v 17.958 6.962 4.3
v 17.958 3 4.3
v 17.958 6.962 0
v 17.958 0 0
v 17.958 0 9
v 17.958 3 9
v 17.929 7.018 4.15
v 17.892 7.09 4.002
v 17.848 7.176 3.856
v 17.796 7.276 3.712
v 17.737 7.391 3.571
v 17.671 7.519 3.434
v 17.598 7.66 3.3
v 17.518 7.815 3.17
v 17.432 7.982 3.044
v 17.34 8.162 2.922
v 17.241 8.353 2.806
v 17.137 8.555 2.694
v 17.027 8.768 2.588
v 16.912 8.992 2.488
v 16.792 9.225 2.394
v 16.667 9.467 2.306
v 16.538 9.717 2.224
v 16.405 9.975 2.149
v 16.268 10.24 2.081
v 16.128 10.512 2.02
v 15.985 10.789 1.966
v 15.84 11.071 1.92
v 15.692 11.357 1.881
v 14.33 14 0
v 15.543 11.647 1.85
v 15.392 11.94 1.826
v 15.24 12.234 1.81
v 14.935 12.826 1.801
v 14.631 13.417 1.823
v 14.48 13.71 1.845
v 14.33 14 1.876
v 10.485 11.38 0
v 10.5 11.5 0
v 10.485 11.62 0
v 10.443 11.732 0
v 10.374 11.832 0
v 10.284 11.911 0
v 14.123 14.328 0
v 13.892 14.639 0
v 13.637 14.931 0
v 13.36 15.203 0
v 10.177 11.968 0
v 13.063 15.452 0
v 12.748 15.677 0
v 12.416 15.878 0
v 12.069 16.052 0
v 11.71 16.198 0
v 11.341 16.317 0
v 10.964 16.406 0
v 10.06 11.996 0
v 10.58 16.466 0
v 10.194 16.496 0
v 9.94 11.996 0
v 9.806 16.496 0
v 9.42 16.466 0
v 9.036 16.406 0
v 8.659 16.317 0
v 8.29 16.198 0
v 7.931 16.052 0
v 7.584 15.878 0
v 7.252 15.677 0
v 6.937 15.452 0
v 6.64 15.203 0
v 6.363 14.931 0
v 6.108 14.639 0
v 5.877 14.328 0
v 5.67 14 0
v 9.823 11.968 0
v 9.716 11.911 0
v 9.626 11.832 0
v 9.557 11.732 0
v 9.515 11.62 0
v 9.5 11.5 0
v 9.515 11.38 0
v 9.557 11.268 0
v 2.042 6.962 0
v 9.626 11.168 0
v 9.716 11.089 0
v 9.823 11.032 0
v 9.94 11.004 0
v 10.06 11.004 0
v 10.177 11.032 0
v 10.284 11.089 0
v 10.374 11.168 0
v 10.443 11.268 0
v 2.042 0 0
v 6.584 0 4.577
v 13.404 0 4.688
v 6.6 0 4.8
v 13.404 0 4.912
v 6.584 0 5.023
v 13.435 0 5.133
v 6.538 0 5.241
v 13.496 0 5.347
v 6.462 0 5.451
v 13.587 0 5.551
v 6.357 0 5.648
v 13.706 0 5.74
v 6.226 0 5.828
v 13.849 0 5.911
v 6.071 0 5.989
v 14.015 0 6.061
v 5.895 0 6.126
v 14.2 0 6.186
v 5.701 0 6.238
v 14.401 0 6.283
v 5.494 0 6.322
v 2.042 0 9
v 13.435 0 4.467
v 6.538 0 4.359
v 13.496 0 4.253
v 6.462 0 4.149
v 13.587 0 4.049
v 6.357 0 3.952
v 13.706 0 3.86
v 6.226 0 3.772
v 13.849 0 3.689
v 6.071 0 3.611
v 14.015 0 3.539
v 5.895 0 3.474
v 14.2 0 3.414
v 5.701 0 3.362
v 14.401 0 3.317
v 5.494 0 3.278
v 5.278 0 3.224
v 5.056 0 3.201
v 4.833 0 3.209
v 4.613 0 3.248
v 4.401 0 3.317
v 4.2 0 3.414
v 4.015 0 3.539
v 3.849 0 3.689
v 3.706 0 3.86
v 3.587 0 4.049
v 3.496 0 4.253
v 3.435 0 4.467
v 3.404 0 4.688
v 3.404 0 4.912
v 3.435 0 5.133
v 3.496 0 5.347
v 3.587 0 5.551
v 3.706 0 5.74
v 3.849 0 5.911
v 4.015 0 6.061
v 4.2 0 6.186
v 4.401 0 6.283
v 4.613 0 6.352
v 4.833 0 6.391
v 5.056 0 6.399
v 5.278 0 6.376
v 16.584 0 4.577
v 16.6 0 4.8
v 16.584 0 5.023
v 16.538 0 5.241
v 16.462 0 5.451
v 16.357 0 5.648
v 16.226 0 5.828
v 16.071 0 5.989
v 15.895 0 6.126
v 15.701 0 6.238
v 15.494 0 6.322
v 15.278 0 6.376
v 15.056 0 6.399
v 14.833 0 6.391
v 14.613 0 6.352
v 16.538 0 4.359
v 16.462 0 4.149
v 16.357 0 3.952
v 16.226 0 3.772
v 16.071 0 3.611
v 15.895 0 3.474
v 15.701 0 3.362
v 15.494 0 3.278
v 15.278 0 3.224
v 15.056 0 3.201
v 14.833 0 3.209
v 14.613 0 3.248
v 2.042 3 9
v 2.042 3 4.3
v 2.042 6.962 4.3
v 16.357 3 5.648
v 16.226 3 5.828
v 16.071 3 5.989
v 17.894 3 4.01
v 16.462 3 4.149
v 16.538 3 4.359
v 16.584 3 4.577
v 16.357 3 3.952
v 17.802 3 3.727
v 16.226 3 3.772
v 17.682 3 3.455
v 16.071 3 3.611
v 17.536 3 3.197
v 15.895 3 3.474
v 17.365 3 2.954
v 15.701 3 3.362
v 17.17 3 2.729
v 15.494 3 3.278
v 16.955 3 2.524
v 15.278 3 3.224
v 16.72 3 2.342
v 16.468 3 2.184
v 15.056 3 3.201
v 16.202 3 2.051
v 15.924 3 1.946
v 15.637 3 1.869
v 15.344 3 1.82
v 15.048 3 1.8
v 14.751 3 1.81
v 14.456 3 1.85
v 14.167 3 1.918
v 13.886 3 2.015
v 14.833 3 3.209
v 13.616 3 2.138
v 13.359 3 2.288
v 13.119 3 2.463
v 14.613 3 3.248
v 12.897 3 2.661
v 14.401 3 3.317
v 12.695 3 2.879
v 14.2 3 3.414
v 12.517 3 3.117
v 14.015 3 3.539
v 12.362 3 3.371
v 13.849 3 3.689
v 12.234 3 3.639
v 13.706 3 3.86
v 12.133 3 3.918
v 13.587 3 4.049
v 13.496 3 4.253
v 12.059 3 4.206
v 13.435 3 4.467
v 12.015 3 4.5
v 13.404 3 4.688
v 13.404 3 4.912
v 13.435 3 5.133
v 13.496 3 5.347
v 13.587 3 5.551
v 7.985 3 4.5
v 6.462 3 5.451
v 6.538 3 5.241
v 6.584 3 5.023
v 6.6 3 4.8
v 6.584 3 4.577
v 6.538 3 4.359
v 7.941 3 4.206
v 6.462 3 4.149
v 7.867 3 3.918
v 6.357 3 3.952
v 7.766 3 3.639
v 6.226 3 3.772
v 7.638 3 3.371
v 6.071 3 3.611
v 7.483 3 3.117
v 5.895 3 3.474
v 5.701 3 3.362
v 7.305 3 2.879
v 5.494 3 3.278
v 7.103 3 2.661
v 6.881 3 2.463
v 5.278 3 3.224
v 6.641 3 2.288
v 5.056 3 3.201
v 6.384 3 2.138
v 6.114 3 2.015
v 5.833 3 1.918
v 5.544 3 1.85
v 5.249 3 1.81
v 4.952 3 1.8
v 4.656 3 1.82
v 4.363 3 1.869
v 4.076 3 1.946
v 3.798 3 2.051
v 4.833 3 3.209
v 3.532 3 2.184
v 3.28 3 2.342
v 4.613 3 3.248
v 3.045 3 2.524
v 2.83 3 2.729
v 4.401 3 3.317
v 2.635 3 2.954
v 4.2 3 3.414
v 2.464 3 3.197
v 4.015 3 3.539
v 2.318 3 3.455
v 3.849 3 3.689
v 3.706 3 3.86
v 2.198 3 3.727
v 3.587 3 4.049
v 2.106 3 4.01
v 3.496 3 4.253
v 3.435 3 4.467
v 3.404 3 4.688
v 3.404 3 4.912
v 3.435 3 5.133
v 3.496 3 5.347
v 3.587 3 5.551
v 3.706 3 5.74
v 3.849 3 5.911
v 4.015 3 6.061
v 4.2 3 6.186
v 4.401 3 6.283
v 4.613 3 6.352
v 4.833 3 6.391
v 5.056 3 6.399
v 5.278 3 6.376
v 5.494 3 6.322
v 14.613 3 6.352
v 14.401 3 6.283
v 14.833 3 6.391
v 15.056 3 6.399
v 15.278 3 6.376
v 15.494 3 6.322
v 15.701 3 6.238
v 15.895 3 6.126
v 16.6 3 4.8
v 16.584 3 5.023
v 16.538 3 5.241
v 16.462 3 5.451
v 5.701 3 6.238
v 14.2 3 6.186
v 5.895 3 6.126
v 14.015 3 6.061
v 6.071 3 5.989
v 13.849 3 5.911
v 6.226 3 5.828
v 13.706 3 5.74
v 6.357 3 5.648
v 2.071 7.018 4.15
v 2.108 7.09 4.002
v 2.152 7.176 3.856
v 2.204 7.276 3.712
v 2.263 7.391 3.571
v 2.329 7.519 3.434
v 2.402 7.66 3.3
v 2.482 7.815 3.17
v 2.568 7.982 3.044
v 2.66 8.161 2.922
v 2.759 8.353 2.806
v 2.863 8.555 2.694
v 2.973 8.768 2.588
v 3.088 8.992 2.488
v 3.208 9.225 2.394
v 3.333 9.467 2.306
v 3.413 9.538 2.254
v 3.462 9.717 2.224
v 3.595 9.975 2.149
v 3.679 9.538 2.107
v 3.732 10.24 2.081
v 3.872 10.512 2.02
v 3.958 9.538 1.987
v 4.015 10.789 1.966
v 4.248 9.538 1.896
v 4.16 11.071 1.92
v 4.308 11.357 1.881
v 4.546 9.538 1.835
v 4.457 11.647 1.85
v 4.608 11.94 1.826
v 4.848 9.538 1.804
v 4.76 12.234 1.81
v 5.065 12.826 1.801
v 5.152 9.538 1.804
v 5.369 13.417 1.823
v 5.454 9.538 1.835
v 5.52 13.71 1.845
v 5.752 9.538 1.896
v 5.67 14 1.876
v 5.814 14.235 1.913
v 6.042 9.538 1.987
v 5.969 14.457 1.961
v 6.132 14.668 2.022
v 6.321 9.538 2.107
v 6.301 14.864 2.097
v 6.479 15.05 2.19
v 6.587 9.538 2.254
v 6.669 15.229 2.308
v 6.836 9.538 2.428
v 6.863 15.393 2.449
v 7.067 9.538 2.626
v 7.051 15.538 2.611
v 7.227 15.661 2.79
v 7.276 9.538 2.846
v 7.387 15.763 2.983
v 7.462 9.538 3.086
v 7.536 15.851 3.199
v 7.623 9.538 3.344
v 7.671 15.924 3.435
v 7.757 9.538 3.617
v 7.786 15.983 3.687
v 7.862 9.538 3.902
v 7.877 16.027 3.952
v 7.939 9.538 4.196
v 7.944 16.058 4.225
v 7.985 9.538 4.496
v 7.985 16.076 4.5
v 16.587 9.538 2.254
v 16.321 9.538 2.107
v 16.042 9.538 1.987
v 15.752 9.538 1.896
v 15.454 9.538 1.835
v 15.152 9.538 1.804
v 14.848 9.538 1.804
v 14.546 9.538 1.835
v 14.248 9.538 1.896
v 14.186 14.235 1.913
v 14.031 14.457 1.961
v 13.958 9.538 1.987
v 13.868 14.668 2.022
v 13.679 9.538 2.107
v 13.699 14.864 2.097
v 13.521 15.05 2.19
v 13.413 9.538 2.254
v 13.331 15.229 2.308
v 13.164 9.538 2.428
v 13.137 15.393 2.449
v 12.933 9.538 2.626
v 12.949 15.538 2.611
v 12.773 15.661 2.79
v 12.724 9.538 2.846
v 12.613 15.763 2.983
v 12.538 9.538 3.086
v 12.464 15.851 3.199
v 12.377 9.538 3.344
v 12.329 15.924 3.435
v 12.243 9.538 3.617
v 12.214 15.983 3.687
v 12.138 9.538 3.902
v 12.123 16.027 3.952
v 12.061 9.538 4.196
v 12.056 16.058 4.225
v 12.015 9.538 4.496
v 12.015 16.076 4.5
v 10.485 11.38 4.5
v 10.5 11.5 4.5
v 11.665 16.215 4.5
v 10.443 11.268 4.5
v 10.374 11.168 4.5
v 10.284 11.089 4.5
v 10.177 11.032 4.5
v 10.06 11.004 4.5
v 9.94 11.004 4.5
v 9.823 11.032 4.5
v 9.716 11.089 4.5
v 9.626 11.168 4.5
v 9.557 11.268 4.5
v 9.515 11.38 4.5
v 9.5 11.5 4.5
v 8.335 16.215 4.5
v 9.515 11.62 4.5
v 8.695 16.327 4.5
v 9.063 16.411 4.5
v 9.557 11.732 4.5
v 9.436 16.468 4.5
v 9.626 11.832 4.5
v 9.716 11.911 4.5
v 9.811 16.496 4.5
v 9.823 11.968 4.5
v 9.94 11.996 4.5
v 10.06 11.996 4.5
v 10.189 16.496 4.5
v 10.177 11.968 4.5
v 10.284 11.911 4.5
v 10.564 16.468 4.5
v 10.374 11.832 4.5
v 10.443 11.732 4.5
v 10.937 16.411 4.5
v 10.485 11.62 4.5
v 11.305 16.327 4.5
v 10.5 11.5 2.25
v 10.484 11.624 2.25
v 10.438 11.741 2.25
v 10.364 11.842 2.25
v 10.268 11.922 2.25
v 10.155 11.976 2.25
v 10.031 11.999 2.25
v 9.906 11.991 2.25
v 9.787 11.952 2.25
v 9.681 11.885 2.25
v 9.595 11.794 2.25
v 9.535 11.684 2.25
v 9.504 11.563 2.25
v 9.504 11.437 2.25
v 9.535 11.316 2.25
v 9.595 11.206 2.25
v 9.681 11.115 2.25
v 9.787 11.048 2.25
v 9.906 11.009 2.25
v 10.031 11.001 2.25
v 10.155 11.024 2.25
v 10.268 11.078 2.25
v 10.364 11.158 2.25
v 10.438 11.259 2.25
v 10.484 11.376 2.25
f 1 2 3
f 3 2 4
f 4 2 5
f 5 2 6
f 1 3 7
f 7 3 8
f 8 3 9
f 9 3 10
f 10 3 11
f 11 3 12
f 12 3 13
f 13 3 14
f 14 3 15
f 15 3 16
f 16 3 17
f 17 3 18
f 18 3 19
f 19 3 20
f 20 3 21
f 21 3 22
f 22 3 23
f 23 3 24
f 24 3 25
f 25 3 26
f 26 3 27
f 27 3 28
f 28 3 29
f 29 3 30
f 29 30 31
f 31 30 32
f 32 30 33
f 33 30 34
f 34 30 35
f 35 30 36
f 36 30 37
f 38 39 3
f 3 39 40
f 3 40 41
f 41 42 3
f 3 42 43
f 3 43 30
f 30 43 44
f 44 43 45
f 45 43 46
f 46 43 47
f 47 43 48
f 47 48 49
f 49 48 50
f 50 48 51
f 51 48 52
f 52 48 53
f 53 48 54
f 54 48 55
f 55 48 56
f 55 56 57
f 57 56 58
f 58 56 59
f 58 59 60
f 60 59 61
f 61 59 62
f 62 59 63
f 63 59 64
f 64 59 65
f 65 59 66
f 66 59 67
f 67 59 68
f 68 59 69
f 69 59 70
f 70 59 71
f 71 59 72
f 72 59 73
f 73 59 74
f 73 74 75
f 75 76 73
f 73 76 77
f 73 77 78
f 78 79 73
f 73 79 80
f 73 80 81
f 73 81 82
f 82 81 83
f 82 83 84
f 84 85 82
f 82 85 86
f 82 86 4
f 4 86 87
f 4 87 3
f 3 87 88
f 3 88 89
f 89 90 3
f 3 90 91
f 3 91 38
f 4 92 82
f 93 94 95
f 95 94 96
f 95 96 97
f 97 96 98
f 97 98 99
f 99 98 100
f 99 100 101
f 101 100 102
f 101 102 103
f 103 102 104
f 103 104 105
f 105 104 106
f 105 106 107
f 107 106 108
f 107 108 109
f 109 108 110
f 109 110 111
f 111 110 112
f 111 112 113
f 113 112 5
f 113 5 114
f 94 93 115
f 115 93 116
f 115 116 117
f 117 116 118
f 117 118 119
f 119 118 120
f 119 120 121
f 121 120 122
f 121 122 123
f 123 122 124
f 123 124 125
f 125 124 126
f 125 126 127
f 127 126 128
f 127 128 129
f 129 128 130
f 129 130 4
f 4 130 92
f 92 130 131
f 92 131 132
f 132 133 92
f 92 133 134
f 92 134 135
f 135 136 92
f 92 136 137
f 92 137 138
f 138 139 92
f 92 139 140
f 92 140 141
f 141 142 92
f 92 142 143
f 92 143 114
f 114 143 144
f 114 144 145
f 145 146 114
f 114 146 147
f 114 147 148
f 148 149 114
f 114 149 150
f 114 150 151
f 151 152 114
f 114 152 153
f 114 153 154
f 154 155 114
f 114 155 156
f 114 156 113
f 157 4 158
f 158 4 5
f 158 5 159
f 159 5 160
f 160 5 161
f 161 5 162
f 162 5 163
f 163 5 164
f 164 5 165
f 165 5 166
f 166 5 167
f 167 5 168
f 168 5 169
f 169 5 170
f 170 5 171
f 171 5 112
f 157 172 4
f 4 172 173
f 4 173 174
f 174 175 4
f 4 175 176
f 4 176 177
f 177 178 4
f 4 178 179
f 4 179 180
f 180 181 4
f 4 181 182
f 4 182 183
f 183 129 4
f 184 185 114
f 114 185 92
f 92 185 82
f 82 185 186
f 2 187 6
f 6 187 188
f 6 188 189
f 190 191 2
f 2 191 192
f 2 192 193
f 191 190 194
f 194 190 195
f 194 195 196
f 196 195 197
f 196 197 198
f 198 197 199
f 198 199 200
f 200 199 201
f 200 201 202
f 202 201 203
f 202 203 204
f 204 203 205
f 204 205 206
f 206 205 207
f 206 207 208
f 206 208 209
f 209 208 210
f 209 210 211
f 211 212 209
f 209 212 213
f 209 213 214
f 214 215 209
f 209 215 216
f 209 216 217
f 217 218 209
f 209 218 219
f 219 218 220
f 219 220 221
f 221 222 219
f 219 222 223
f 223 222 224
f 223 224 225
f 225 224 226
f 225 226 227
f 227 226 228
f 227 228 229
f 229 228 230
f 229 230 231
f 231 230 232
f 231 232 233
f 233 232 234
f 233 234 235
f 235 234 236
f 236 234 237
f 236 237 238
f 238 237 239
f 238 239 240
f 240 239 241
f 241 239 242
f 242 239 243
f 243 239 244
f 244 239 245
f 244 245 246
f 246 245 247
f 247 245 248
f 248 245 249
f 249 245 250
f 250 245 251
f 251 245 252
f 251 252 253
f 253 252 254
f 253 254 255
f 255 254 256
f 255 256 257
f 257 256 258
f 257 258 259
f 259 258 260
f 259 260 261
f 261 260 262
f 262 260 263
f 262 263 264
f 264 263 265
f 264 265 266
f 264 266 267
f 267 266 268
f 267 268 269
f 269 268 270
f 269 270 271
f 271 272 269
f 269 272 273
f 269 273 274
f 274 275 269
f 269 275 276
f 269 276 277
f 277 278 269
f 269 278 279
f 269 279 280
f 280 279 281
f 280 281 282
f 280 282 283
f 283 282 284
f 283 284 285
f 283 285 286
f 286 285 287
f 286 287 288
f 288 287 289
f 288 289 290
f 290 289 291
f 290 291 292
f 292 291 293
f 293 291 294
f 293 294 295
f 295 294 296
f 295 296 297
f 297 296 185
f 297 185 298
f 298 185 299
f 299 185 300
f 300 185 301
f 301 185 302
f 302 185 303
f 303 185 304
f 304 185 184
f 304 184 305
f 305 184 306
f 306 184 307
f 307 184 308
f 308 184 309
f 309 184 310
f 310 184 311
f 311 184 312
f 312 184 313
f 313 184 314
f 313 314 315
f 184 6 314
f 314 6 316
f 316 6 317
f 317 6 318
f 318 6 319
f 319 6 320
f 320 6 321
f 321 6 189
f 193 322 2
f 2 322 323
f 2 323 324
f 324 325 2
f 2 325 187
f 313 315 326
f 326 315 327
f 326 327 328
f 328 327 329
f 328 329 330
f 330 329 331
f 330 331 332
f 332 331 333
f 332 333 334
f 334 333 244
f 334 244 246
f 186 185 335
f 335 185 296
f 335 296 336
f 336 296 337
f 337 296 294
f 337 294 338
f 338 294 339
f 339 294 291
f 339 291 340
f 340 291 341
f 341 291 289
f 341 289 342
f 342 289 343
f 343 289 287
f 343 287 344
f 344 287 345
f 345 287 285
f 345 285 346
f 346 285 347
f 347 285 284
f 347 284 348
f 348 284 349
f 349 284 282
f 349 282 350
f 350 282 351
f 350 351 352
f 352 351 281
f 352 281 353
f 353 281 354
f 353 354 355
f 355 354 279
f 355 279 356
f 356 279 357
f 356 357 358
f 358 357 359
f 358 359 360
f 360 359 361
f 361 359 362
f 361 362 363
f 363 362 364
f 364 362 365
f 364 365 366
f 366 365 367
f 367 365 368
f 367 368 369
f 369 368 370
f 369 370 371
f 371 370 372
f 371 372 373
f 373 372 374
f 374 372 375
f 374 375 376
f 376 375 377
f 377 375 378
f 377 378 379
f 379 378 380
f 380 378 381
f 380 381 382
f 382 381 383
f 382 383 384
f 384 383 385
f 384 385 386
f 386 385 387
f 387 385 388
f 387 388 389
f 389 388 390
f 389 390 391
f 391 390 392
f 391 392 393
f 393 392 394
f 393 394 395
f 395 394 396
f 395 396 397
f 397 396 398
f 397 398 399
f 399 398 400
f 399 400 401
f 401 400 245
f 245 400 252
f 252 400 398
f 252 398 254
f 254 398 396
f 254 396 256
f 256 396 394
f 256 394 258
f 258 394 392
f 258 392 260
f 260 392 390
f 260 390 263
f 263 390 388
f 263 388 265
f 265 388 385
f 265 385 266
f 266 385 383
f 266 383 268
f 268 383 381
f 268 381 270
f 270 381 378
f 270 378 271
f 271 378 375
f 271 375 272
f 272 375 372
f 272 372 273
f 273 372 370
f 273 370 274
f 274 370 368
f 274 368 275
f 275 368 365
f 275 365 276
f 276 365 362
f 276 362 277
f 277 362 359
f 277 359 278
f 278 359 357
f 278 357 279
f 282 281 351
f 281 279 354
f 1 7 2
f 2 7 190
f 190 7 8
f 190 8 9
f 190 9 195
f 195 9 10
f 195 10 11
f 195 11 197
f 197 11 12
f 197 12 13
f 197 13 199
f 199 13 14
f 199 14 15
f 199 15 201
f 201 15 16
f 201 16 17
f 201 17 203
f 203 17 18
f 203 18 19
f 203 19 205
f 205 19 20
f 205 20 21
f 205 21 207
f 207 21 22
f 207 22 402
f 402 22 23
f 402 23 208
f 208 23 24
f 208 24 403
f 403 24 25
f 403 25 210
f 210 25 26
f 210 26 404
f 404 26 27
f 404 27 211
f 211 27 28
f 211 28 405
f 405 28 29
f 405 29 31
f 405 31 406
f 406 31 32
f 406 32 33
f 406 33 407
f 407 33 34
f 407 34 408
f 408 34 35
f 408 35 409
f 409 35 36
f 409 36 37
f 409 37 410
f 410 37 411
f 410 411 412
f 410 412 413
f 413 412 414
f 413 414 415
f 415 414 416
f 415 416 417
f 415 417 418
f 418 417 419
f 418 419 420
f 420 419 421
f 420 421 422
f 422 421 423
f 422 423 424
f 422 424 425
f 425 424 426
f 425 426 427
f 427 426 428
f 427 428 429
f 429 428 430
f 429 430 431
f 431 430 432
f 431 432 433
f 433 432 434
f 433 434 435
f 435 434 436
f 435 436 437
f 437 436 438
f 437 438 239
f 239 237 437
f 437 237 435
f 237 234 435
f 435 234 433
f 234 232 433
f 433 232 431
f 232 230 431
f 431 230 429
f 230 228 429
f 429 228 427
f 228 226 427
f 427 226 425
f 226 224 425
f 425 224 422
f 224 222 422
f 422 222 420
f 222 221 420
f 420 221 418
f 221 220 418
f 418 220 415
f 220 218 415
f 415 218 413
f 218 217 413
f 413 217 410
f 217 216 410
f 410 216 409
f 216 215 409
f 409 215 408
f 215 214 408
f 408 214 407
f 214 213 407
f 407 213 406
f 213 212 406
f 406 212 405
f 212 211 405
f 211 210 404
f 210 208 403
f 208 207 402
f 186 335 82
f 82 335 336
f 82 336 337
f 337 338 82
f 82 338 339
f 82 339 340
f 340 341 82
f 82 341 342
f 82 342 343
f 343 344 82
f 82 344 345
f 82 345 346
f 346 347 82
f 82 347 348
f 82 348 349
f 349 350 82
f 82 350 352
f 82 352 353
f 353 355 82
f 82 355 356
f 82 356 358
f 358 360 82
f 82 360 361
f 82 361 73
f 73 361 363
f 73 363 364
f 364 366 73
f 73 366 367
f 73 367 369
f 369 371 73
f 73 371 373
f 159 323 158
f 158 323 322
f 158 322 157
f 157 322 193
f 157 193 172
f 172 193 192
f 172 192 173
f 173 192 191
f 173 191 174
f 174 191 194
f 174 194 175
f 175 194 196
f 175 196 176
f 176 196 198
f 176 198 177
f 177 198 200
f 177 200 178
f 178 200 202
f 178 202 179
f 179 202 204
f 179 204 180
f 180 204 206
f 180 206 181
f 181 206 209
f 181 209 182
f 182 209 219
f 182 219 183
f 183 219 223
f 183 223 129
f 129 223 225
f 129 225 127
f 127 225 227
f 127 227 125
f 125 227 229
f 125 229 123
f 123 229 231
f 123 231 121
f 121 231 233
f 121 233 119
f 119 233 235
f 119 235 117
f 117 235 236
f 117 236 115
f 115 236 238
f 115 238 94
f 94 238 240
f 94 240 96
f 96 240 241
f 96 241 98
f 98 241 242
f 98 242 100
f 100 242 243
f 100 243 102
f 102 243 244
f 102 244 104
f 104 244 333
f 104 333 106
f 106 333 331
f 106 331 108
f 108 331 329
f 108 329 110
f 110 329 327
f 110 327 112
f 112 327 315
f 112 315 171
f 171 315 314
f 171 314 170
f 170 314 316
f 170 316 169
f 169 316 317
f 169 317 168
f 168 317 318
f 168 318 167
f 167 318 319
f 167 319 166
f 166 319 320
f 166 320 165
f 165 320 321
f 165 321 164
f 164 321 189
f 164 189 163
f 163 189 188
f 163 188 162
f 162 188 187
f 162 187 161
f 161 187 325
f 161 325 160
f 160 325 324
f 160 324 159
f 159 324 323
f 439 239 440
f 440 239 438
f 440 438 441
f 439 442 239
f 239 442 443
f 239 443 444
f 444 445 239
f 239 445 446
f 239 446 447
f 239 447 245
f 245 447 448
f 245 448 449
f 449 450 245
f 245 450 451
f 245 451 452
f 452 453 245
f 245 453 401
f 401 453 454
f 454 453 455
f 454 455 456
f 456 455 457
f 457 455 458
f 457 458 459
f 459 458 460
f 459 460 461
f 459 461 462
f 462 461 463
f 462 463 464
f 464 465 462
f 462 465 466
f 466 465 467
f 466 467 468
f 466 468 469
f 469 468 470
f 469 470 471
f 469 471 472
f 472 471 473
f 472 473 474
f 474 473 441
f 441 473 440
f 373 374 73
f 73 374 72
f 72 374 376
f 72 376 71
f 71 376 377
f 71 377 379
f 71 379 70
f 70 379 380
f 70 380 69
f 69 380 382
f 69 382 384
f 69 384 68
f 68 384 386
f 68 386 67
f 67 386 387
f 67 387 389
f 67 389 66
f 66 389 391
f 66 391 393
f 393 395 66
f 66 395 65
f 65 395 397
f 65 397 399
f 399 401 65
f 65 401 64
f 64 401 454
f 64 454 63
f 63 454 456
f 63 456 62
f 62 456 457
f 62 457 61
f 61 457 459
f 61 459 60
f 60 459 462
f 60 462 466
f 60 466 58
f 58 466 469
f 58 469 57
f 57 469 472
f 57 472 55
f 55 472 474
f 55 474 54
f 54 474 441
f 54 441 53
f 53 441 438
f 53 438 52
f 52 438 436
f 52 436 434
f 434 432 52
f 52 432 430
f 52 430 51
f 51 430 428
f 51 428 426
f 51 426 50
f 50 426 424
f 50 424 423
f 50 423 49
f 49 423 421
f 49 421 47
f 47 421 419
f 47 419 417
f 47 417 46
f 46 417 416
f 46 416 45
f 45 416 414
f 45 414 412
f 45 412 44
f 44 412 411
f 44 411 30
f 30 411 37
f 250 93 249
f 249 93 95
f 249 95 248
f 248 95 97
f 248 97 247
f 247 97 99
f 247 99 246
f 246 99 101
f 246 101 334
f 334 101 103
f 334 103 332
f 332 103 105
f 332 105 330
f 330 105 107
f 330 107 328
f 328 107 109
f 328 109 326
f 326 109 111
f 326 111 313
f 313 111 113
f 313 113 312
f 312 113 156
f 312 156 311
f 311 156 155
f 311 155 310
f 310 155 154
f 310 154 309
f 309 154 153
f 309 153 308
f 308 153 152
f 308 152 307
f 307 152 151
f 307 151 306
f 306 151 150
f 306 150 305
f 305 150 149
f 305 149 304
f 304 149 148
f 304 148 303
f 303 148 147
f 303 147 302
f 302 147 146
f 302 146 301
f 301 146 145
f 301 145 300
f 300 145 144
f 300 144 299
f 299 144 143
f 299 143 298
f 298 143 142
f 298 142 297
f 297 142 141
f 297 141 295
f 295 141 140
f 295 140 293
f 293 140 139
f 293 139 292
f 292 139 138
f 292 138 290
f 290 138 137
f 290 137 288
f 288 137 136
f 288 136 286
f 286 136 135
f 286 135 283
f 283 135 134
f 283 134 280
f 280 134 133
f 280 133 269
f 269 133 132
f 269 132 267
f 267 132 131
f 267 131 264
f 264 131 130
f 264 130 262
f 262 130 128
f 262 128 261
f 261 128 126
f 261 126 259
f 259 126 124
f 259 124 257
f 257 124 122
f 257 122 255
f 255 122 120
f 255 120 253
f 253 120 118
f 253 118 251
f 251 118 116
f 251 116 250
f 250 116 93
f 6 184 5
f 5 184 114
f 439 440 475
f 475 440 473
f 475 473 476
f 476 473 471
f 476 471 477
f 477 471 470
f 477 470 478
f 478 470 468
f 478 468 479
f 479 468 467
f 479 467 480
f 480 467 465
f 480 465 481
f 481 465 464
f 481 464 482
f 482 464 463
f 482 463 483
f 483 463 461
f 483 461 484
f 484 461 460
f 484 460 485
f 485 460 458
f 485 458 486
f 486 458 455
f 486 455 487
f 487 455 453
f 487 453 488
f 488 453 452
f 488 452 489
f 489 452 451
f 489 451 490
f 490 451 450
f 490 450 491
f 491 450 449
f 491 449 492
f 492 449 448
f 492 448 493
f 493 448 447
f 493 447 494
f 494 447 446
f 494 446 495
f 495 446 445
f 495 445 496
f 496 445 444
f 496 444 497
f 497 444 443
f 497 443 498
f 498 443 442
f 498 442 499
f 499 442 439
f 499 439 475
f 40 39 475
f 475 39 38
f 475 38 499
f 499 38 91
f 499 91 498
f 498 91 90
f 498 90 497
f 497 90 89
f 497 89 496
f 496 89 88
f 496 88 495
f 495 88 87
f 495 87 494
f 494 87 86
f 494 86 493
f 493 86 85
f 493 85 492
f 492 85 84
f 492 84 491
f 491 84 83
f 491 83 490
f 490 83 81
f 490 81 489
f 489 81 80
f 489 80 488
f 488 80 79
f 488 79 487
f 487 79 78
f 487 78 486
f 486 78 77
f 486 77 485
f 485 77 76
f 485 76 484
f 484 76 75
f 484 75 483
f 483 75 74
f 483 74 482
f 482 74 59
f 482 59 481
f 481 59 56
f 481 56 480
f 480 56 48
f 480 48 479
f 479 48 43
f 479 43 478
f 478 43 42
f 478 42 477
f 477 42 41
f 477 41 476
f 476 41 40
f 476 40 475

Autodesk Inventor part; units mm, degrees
ref_plane "YZ Plane" through (0, 0, 0) normal (1, 0, 0) x (0, 1, 0)
ref_plane "XZ Plane" through (0, 0, 0) normal (0, 1, 0) x (-1, 0, 0)
ref_plane "XY Plane" through (0, 0, 0) normal (0, 0, 1) x (1, 0, 0)
sketch "Sketch1" plane through (0, 0, 0) normal (0, 0, 1) x (1, 0, 0)
  circle A0 centre (10, 11.5) radius 0.5
  line L0 (0, 0) -> (20.0001, 0)
  line L1 (0, 0) -> (0, 3)
  line L2 (20.0001, 0) -> (20.0001, 3)
  line L3 (0, 3) -> (16, 3) construction
  line L4 (20.0001, 3) -> (36.0001, 3) construction
  arc A1 (14.3301, 14) -> (5.6699, 14) centre (10, 11.5) ccw
  line L5 (10, 11.5) -> (5.6699, 14) construction
  line L6 (10, 11.5) -> (14.3301, 14) construction
  line L7 (5.6699, 14) -> (0, 3)
  line L8 (14.3301, 14) -> (20.0001, 3)
  dimension "d17" = 3
  dimension "d18" = 3
  dimension "d19" = 11.5
  dimension "d23" = 90
  dimension "d24" = 90
  dimension "d25" = 10
  dimension "d31" = 5
  dimension "d32" = 120
  dimension "d33" = 14
  dimension "d48" = 1
extrude "Extrusion1" add sketch "Sketch1" along normal blind 4.5
sketch "Sketch4" plane through (0, 0, 4.5) normal (0, 0, 1) x (1, 0, 0)
  line L0 (0, 3) -> (0, 0) projected
  line L1 (20.0001, 0) -> (20.0001, 3) projected
  line L2 (0, 0) -> (20.0001, 0)
  line L3 (20.0001, 0) -> (20.0001, 3)
  line L4 (20.0001, 3) -> (0, 3)
  line L5 (0, 3) -> (0, 0)
extrude "Extrusion2" add sketch "Sketch4" along normal blind 4.5
sketch "Sketch5" plane through (0, 0, 0) normal (0, -1, 0) x (1, 0, 0)
  circle A0 centre (5, 4.8) radius 1.6
  circle A1 centre (15, 4.8) radius 1.6
  line L0 (0, 0) -> (20.0001, 0) projected
  dimension "d13" = 3.2
  dimension "d14" = 3.2
  dimension "d38" = 4.8
  dimension "d39" = 4.8
extrude "Extrusion3" cut sketch "Sketch5" against normal through all
sketch "Sketch6" plane through (0, 3, 9) normal (0, 1, 0) x (1, 0, 0)
  circle A0 centre (5, 4.2) radius 1.6 projected
  circle A1 centre (5, 4.2) radius 3
  circle A2 centre (15, 4.2) radius 1.6 projected
  circle A3 centre (15, 4.2) radius 3
  line L0 (0, 9) -> (20.0001, 9) projected
  dimension "d34" = 6
  dimension "d35" = 6
  dimension "d40" = 4.8
  dimension "d41" = 4.8
extrude "Extrusion4" cut sketch "Sketch6" along normal up to next
sketch "Sketch7" plane through (0, 0, 0) normal (0, -1, 0) x (1, 0, 0)
  line L0 (0, 0) -> (0, 9) projected
  line L1 (2.042, 0) -> (0, 0)
  line L2 (0, 0) -> (0, 9)
  line L3 (0, 9) -> (2.042, 9)
  line L4 (2.042, 9) -> (2.042, 0)
extrude "Extrusion5" cut sketch "Sketch7" against normal up to next
sketch "Sketch8" plane through (20.0001, 0, 0) normal (0, -1, 0) x (1, 0, 0)
  line L0 (0, 4.5) -> (0, 9) projected
  line L1 (-2.042, 0) -> (0, 0)
  line L2 (0, 0) -> (0, 9)
  line L3 (0, 9) -> (-2.042, 9)
  line L4 (-2.042, 9) -> (-2.042, 0)
  point P0 (-20.0001, 0)
extrude "Extrusion6" cut sketch "Sketch8" against normal up to next
properties part number "lower_deck_shaft_mount_printing"
